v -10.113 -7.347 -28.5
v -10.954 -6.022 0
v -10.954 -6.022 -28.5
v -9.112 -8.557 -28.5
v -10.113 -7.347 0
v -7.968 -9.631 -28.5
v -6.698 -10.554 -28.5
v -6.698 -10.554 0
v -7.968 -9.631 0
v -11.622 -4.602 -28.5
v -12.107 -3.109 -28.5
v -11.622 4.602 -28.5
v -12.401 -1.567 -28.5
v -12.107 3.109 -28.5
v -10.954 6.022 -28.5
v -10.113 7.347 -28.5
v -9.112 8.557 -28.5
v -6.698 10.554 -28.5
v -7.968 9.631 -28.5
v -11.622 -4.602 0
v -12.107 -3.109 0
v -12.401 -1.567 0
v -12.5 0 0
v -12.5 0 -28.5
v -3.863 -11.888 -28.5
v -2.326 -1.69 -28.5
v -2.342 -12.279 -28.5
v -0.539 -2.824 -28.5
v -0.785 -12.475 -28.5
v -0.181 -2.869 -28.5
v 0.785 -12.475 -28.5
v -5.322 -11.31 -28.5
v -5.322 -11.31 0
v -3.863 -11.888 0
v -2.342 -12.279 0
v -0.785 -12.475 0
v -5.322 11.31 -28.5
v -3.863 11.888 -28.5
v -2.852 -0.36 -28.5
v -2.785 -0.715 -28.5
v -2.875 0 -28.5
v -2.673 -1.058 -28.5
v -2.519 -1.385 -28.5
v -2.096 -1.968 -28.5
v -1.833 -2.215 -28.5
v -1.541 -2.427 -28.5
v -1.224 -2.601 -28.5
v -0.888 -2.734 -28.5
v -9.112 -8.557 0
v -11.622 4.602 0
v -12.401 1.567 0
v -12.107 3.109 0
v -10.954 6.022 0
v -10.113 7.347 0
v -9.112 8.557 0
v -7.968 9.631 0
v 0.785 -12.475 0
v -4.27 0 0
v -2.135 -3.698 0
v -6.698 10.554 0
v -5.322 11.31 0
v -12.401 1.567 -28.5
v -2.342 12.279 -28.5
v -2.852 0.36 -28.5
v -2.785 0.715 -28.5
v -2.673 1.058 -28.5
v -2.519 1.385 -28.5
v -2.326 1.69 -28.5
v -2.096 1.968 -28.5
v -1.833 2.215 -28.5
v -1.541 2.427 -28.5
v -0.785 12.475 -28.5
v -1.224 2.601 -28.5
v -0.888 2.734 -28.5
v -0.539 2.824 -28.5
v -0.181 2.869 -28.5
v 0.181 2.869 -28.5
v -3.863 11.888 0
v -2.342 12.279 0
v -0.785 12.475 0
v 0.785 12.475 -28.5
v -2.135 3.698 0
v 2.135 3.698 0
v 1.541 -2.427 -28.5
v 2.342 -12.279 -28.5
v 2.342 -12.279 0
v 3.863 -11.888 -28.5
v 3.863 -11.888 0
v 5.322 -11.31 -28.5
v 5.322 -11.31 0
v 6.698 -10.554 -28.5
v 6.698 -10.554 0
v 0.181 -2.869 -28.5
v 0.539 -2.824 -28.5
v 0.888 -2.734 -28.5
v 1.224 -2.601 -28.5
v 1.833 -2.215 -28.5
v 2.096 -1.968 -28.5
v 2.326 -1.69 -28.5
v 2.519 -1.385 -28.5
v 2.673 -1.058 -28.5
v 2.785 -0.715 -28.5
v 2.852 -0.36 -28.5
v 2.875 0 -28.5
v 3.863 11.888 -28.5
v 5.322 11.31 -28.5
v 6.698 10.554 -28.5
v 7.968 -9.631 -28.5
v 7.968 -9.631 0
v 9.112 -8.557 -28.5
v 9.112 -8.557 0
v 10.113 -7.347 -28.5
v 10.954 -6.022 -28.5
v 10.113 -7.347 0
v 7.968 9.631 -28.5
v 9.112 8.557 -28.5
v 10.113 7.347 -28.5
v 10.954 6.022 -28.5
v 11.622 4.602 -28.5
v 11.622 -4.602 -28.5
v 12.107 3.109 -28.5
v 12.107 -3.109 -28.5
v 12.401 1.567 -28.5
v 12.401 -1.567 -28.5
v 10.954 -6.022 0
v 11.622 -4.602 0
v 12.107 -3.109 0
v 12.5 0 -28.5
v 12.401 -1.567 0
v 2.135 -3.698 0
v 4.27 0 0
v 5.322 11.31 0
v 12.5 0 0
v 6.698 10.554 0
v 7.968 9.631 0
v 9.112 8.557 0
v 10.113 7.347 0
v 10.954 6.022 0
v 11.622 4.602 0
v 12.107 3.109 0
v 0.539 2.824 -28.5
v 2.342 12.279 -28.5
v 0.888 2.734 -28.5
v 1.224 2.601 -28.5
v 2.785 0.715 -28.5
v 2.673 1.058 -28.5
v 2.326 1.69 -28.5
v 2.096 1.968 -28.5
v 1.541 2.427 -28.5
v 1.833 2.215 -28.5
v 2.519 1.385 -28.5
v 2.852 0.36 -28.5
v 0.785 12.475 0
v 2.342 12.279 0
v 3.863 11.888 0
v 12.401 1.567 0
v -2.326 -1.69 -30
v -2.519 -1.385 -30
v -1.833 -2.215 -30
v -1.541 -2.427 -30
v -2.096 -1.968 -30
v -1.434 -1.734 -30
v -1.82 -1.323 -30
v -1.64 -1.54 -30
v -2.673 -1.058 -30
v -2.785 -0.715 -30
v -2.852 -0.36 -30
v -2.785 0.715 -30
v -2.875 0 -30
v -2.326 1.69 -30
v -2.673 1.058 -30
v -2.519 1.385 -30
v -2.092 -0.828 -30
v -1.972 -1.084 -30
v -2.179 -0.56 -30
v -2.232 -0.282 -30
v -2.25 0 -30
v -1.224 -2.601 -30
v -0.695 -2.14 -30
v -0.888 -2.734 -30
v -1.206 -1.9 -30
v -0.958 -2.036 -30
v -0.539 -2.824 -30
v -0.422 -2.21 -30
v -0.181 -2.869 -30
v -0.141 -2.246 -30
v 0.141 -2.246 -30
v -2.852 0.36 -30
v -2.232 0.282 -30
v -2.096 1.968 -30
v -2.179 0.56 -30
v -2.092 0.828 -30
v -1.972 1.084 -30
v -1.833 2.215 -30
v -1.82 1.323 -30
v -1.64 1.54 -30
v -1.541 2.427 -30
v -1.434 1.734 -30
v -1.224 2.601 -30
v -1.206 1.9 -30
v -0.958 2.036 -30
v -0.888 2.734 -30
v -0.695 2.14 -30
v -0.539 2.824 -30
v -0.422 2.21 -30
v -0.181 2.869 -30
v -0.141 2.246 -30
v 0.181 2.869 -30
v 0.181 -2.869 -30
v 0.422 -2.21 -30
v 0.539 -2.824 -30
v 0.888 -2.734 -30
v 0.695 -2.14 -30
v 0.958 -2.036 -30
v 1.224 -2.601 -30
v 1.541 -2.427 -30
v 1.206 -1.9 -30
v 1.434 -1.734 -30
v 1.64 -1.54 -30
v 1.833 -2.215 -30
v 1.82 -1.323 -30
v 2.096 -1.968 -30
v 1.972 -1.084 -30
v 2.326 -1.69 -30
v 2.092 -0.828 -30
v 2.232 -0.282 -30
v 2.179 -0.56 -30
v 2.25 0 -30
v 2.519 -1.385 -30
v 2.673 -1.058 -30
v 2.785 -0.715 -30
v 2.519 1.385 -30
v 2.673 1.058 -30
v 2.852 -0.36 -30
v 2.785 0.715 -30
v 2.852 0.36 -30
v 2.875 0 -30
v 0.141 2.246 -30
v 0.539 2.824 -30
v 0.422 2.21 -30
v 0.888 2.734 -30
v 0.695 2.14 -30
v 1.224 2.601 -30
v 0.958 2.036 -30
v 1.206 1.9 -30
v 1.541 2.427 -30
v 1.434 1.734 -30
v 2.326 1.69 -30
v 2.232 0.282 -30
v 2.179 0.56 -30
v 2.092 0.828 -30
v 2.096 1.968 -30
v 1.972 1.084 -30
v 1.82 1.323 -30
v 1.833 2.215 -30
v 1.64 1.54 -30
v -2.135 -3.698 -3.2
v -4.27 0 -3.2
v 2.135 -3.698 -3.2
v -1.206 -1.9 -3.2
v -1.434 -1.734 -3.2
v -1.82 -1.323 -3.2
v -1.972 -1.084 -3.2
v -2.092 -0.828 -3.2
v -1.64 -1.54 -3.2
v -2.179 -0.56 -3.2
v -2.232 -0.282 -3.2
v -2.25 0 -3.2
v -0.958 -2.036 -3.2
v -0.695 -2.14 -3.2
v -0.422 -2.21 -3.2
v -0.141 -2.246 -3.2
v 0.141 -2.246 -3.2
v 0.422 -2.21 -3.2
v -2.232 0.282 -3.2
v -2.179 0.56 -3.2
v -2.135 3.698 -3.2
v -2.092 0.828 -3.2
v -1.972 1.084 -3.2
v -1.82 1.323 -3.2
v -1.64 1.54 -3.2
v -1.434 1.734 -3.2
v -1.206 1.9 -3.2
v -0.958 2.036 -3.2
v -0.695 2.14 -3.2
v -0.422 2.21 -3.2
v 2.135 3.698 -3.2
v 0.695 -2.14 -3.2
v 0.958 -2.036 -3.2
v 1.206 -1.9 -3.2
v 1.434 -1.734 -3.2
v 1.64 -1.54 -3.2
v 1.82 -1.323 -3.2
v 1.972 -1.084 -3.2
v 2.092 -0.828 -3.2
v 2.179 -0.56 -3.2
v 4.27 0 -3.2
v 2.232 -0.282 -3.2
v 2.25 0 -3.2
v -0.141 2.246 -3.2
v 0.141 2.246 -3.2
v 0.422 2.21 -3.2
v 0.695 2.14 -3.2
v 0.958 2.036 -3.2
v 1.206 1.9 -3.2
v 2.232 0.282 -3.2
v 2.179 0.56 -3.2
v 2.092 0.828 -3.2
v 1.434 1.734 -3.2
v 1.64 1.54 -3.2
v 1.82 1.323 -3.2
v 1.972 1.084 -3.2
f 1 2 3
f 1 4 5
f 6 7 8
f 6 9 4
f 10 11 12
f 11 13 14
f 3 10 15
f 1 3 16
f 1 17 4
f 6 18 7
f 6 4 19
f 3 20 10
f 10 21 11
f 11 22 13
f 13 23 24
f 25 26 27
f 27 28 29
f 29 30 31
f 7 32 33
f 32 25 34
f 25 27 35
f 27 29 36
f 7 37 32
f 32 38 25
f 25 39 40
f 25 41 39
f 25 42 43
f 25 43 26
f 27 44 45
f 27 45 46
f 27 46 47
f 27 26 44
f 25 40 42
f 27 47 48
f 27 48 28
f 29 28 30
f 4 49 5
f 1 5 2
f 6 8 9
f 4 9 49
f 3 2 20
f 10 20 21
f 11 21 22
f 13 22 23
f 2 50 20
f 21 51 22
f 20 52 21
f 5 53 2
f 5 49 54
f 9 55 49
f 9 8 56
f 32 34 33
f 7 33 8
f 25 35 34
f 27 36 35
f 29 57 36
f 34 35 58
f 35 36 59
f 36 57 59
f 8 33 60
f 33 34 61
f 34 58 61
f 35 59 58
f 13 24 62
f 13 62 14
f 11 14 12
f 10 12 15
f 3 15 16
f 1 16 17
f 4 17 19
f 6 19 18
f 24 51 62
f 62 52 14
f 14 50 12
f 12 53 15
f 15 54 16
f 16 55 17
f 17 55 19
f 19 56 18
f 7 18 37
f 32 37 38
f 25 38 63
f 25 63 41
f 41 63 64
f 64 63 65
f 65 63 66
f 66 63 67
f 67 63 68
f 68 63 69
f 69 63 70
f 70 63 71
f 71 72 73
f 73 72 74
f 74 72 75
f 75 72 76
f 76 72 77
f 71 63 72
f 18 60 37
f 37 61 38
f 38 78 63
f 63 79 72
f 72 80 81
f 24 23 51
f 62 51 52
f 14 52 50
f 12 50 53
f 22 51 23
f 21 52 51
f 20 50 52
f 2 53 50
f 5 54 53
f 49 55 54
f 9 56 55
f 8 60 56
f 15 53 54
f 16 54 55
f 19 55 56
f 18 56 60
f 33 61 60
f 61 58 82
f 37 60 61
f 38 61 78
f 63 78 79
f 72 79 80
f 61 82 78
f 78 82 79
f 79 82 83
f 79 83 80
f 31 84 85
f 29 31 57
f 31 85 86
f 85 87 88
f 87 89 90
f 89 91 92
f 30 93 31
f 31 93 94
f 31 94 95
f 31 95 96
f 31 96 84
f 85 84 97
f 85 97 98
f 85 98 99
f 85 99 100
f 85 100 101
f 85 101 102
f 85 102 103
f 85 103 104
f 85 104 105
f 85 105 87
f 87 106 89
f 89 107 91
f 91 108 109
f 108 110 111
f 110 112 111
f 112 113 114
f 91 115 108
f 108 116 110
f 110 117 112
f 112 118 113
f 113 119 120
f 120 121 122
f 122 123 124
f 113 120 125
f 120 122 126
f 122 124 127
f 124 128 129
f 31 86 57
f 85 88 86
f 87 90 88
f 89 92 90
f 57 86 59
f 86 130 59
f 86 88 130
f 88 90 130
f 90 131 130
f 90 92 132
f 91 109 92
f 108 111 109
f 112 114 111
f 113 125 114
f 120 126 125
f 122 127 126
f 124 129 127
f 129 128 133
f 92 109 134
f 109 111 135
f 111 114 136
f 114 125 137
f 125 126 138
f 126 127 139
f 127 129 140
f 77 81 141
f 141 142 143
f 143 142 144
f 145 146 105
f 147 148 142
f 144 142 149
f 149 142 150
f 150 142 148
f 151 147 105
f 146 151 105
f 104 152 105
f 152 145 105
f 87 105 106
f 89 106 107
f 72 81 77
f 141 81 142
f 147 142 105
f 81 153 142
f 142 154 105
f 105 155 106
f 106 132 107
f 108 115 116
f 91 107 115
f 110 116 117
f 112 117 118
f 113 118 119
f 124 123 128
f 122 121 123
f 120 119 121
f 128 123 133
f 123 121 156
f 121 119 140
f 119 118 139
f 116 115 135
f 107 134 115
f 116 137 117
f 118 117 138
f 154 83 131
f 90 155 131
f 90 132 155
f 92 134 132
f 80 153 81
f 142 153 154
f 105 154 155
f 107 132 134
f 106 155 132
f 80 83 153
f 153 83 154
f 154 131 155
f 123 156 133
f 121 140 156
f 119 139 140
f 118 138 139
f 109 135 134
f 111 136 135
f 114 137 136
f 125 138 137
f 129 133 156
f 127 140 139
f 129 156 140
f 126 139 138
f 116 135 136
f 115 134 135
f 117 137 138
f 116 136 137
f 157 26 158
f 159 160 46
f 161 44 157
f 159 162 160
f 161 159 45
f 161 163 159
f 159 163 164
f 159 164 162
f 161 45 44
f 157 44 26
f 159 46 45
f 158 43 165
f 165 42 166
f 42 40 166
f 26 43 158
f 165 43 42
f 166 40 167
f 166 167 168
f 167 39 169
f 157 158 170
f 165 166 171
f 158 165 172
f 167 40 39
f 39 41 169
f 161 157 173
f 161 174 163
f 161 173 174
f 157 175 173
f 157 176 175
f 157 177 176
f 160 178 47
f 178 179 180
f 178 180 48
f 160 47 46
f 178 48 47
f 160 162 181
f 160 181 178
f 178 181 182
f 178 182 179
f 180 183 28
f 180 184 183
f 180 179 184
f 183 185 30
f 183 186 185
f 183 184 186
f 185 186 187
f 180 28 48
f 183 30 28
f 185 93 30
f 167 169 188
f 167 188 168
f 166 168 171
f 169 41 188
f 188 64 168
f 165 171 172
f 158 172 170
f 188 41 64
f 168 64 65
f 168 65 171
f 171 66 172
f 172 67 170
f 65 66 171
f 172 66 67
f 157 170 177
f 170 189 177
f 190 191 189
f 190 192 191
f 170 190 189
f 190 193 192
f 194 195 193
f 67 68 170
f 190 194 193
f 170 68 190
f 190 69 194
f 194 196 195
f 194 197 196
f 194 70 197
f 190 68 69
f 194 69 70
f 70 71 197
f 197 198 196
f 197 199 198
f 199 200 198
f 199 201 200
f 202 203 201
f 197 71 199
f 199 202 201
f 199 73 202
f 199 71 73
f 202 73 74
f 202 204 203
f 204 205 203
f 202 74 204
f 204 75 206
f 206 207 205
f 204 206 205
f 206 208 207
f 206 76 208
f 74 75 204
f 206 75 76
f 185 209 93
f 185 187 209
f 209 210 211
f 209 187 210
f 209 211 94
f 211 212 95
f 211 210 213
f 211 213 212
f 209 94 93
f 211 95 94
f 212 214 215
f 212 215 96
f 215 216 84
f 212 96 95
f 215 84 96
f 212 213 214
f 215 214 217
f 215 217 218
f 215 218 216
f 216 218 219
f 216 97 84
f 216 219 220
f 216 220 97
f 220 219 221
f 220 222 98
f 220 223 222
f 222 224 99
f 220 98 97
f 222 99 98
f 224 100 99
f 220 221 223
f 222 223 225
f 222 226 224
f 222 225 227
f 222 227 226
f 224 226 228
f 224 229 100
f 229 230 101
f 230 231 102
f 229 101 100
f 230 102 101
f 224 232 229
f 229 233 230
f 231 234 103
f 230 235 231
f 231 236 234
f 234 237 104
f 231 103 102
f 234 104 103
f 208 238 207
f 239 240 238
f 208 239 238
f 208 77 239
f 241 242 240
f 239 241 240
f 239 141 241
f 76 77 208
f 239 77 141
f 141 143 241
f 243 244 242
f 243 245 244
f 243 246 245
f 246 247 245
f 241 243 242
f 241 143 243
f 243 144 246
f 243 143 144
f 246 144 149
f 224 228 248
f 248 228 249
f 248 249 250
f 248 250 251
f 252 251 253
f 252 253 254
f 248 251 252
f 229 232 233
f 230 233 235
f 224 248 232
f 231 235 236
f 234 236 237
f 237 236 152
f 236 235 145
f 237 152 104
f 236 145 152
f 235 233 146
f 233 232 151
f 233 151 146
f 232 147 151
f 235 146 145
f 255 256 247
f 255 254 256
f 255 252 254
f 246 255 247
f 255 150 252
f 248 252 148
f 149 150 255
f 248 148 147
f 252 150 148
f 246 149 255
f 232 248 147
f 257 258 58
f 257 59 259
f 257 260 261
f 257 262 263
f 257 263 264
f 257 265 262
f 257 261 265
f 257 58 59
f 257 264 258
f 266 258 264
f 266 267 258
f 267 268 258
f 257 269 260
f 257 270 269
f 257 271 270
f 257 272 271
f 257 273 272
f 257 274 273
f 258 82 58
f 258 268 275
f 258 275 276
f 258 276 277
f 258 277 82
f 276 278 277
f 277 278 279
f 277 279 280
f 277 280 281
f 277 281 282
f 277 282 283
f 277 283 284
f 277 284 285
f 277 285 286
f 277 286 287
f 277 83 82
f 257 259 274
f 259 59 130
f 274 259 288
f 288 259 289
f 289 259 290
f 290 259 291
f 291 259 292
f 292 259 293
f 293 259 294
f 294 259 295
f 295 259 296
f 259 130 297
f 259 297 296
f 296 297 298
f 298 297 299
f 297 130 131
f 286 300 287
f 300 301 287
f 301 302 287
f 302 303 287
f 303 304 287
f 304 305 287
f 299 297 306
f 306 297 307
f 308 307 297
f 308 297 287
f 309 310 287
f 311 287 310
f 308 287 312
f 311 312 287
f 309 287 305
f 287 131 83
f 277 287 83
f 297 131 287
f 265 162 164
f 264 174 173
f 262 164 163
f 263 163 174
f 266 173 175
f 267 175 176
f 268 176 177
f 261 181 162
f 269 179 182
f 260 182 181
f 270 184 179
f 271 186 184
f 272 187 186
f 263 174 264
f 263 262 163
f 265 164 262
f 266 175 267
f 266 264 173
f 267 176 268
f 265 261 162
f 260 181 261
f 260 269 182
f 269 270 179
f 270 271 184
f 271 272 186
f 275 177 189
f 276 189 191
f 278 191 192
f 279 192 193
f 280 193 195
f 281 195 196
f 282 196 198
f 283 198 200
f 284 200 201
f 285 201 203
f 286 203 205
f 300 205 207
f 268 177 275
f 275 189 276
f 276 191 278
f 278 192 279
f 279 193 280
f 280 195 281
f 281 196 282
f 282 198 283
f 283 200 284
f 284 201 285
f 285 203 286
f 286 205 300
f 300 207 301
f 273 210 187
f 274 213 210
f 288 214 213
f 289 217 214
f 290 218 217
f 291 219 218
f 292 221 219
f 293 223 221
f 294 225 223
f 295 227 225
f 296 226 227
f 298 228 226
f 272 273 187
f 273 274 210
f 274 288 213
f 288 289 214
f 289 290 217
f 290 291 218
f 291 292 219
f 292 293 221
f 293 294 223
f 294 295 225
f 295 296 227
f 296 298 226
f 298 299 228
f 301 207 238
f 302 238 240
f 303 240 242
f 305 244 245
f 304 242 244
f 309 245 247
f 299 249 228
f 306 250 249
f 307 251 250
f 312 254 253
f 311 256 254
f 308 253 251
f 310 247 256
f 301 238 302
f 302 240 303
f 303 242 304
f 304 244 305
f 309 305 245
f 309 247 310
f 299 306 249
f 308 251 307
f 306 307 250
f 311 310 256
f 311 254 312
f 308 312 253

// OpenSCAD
$fn = 50;


difference() {
	union() {
		translate(v = [0, 0, -28.5000000000]) {
			cylinder(h = 28.5000000000, r = 12.5000000000);
		}
		#translate(v = [0, 0, -30.0000000000]) {
			cylinder(h = 30, r = 2.8750000000);
		}
	}
	union() {
		translate(v = [0, 0, 0]) {
			rotate(a = [0, 0, 0]) {
				difference() {
					union() {
						translate(v = [0, 0, -3.2000000000]) {
							linear_extrude(height = 3.2000000000) {
								polygon(points = [[4.2698000000, 0.0000000000], [2.1349000000, 3.6977552691], [-2.1349000000, 3.6977552691], [-4.2698000000, 0.0000000000], [-2.1349000000, -3.6977552691], [2.1349000000, -3.6977552691]]);
							}
						}
					}
					union();
				}
			}
		}
		#translate(v = [0, 0, -100.0000000000]) {
			cylinder(h = 200, r = 2.2500000000);
		}
	}
}
